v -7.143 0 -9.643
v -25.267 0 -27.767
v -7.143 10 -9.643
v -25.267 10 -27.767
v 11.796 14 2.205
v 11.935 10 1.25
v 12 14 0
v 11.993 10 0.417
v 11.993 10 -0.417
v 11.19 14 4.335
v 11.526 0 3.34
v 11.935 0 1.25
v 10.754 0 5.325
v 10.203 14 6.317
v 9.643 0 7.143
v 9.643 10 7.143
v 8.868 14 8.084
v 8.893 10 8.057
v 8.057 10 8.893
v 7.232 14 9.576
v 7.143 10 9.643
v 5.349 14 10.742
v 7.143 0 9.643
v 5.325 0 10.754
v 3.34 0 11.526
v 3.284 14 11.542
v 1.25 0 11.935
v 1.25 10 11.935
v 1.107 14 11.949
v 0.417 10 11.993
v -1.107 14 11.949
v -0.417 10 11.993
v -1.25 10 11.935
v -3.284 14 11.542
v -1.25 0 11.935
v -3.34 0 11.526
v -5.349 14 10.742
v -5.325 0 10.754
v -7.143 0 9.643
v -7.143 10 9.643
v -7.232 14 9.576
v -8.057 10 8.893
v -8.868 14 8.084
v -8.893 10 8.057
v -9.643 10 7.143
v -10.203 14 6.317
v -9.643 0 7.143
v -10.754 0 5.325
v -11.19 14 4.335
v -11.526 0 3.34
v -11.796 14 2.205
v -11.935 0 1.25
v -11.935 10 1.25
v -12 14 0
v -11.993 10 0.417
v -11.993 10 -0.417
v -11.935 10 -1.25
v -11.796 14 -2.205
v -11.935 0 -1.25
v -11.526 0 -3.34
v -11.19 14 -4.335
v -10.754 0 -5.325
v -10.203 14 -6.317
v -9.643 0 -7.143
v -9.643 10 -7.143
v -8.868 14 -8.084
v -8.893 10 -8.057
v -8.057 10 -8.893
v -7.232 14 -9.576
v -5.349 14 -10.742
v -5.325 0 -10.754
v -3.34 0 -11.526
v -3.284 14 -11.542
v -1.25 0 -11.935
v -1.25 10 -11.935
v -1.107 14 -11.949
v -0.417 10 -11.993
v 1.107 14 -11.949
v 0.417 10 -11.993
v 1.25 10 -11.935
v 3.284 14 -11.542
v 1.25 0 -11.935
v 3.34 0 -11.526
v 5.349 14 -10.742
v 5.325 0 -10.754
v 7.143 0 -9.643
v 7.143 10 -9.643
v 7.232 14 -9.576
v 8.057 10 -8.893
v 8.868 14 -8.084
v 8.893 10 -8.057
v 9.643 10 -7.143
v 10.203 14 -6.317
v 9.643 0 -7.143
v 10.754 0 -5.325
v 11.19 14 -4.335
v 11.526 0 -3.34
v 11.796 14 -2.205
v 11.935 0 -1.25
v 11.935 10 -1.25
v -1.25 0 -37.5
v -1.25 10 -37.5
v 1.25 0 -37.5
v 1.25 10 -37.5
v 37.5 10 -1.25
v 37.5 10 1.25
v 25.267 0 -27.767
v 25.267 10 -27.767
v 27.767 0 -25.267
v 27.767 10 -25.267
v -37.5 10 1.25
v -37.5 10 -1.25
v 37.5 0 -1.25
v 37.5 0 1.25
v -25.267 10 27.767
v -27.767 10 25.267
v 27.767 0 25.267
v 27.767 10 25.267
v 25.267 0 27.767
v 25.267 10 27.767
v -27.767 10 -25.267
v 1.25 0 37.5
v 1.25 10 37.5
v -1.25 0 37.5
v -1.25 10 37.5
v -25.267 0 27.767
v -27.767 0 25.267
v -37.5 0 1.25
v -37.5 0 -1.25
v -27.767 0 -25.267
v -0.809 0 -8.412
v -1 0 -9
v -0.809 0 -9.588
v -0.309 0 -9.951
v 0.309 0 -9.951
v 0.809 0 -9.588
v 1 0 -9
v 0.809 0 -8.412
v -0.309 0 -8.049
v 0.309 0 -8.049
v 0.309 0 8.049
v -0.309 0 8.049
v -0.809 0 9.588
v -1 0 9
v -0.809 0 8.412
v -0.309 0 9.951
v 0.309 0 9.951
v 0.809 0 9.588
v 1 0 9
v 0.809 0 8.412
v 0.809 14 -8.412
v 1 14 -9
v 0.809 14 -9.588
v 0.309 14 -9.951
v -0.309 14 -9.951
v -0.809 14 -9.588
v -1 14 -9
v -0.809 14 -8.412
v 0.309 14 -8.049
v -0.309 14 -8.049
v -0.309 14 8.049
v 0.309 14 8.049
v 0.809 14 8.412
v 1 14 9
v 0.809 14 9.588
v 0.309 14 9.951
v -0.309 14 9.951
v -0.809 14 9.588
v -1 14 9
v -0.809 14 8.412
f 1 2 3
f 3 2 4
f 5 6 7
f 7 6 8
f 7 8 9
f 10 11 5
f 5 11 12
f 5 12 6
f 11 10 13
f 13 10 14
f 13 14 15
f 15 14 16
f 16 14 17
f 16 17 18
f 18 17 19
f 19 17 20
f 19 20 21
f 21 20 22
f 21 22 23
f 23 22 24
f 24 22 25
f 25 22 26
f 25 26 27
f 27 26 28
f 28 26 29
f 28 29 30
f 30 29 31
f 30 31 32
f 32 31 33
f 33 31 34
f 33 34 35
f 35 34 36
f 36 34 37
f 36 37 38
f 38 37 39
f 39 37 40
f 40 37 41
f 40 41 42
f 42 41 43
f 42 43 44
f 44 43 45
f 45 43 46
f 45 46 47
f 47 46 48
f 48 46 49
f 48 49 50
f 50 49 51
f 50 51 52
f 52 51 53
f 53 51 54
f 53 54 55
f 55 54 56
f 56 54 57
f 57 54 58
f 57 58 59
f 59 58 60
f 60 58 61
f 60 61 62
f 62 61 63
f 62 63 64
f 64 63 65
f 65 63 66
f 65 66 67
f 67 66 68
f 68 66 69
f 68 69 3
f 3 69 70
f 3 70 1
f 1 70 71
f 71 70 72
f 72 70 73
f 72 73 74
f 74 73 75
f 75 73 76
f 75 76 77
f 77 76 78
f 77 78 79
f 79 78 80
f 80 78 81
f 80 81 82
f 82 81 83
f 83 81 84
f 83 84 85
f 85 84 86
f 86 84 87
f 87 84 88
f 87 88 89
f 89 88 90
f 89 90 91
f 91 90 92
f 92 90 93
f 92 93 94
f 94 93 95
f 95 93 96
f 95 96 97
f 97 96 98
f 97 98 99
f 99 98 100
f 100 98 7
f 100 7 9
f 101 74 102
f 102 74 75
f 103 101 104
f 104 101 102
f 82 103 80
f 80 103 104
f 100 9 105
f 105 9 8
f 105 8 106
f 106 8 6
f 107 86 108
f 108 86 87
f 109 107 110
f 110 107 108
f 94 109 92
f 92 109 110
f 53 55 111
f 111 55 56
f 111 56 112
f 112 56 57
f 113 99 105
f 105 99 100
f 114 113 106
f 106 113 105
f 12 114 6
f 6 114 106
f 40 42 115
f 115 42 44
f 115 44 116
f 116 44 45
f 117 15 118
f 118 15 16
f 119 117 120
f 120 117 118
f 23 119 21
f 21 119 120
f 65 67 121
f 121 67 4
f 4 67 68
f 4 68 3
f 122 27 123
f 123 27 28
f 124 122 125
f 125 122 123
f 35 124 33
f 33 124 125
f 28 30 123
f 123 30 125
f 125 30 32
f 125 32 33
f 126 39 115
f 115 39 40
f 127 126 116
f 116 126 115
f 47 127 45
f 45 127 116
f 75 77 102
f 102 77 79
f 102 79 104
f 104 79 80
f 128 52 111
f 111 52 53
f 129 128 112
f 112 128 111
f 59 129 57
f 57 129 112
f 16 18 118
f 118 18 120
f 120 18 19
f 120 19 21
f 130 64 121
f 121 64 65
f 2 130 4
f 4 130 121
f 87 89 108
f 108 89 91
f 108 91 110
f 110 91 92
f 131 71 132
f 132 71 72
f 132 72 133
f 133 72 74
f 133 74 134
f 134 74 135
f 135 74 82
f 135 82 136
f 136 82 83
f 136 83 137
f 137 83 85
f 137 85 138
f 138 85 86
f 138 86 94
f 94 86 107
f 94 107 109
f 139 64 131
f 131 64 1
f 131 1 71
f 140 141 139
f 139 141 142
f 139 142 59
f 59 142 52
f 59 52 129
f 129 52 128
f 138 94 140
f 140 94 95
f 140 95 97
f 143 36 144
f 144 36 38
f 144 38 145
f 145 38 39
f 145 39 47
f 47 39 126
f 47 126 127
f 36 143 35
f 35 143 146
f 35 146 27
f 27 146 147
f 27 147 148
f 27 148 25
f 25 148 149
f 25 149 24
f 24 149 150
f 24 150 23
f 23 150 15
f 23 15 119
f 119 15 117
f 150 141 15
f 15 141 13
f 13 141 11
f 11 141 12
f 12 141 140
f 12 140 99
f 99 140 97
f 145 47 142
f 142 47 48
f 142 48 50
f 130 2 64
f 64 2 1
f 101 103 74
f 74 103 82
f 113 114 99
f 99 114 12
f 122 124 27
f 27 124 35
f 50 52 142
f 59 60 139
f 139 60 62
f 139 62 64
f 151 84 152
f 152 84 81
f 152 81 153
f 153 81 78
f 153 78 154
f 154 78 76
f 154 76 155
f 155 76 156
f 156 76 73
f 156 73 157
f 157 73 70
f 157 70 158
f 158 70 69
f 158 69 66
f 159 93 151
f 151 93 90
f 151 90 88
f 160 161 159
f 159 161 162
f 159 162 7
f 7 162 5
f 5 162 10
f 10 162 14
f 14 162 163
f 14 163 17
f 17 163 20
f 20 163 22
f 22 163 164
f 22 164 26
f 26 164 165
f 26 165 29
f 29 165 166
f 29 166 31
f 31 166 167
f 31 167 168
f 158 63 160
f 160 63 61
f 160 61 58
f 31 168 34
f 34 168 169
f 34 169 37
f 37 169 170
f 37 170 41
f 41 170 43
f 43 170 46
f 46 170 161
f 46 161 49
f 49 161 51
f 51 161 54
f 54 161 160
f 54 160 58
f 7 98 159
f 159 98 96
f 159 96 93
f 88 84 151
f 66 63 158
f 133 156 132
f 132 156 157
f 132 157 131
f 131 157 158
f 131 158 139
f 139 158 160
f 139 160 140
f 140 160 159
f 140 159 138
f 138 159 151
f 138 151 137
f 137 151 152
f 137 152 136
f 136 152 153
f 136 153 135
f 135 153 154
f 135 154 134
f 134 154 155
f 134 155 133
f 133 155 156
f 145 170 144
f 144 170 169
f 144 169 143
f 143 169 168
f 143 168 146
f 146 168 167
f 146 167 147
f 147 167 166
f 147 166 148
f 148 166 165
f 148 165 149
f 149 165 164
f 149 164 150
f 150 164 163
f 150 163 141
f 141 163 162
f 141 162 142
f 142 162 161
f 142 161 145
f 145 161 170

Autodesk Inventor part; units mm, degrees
ref_plane "YZ Plane" through (0, 0, 0) normal (1, 0, 0) x (0, 1, 0)
ref_plane "XZ Plane" through (0, 0, 0) normal (0, 1, 0) x (-1, 0, 0)
ref_plane "XY Plane" through (0, 0, 0) normal (0, 0, 1) x (1, 0, 0)
sketch "Sketch2" plane through (0, 0, 0) normal (0, 1, 0) x (-1, 0, 0)
  circle A0 centre (0, 0) radius 12
  line L0 (-1.25, 37.5) -> (-1.25, -37.5)
  line L1 (-1.25, -37.5) -> (1.25, -37.5)
  line L2 (1.25, -37.5) -> (1.25, 37.5)
  line L3 (1.25, 37.5) -> (-1.25, 37.5)
  line L4 (-1.25, 37.5) -> (1.25, -37.5) construction
  line L5 (-1.25, -37.5) -> (1.25, 37.5) construction
  line L6 (-37.5, -1.25) -> (37.5, -1.25)
  line L7 (37.5, -1.25) -> (37.5, 1.25)
  line L8 (37.5, 1.25) -> (-37.5, 1.25)
  line L9 (-37.5, 1.25) -> (-37.5, -1.25)
  line L10 (-37.5, -1.25) -> (37.5, 1.25) construction
  line L11 (37.5, -1.25) -> (-37.5, 1.25) construction
  line L12 (1.25, 1.25) -> (-1.25, -1.25)
  line L13 (-1.25, -1.25) -> (25.2665, -27.7665)
  line L14 (25.2665, -27.7665) -> (27.7665, -25.2665)
  line L15 (27.7665, -25.2665) -> (1.25, 1.25)
  line L16 (1.25, 1.25) -> (-1.25, -1.25)
  line L17 (-1.25, -1.25) -> (-27.7665, 25.2665)
  line L18 (-27.7665, 25.2665) -> (-25.2665, 27.7665)
  line L19 (-25.2665, 27.7665) -> (1.25, 1.25)
  line L20 (-1.25, 1.25) -> (1.25, -1.25)
  line L21 (1.25, -1.25) -> (-25.2665, -27.7665)
  line L22 (-25.2665, -27.7665) -> (-27.7665, -25.2665)
  line L23 (-27.7665, -25.2665) -> (-1.25, 1.25)
  line L24 (-1.25, 1.25) -> (1.25, -1.25)
  line L25 (1.25, -1.25) -> (27.7665, 25.2665)
  line L26 (27.7665, 25.2665) -> (25.2665, 27.7665)
  line L27 (25.2665, 27.7665) -> (-1.25, 1.25)
  point P0 (7.1427, -9.6427)
  point P1 (9.6427, -7.1427)
  point P2 (11.9347, -1.25)
  point P3 (11.9347, 1.25)
  point P4 (9.6427, 7.1427)
  point P5 (7.1427, 9.6427)
  point P6 (1.25, 11.9347)
  point P7 (-1.25, 11.9347)
  point P8 (-7.1427, 9.6427)
  point P9 (-9.6427, 7.1427)
  point P10 (-11.9347, 1.25)
  point P11 (-11.9347, -1.25)
  point P12 (-9.6427, -7.1427)
  point P13 (-7.1427, -9.6427)
  point P14 (-1.25, -11.9347)
  point P15 (1.25, -11.9347)
  dimension "d0" = 24
  dimension "d1" = 75
  dimension "d2" = 2.5
  dimension "d3" = 75
  dimension "d4" = 2.5
  dimension "d5" = 37.5
  dimension "d6" = 37.5
  dimension "d7" = 37.5
  dimension "d8" = 37.5
extrude "Extrusion1" add sketch "Sketch2" along normal blind 10
sketch "Sketch3" plane through (0, 10, 0) normal (0, 1, 0) x (1, 0, 0)
  circle A0 centre (0, 0) radius 12
  dimension "d11" = 24
extrude "Extrusion2" add sketch "Sketch3" along normal blind 4
sketch "Sketch4" plane through (0, 14, 0) normal (0, 1, 0) x (1, 0, 0)
  line L0 (0, 0) -> (0, 12)
  line L1 (1.25, 11.9347) -> (1.25, 37.5) projected
  line L2 (0, 0) -> (12, 0) construction
  line L3 (0, 12) -> (0, -12)
  line L4 (0, -12) -> (0, -9)
  line L5 (0, -12) -> (3, -12) construction
  line L6 (0, 12) -> (0, 9)
  line L7 (0, 12) -> (3, 12) construction
  circle A0 centre (0, -9) radius 1
  circle A1 centre (0, 9) radius 1
  dimension "d14" = 12
  dimension "d15" = 90
  dimension "d16" = 24
  dimension "d17" = 0
  dimension "d18" = 3
  dimension "d19" = 90
  dimension "d20" = 3
  dimension "d21" = 90
  dimension "d22" = 2
  dimension "d23" = 2
extrude "Extrusion3" cut sketch "Sketch4" against normal blind 20
properties part number "sweeper"
